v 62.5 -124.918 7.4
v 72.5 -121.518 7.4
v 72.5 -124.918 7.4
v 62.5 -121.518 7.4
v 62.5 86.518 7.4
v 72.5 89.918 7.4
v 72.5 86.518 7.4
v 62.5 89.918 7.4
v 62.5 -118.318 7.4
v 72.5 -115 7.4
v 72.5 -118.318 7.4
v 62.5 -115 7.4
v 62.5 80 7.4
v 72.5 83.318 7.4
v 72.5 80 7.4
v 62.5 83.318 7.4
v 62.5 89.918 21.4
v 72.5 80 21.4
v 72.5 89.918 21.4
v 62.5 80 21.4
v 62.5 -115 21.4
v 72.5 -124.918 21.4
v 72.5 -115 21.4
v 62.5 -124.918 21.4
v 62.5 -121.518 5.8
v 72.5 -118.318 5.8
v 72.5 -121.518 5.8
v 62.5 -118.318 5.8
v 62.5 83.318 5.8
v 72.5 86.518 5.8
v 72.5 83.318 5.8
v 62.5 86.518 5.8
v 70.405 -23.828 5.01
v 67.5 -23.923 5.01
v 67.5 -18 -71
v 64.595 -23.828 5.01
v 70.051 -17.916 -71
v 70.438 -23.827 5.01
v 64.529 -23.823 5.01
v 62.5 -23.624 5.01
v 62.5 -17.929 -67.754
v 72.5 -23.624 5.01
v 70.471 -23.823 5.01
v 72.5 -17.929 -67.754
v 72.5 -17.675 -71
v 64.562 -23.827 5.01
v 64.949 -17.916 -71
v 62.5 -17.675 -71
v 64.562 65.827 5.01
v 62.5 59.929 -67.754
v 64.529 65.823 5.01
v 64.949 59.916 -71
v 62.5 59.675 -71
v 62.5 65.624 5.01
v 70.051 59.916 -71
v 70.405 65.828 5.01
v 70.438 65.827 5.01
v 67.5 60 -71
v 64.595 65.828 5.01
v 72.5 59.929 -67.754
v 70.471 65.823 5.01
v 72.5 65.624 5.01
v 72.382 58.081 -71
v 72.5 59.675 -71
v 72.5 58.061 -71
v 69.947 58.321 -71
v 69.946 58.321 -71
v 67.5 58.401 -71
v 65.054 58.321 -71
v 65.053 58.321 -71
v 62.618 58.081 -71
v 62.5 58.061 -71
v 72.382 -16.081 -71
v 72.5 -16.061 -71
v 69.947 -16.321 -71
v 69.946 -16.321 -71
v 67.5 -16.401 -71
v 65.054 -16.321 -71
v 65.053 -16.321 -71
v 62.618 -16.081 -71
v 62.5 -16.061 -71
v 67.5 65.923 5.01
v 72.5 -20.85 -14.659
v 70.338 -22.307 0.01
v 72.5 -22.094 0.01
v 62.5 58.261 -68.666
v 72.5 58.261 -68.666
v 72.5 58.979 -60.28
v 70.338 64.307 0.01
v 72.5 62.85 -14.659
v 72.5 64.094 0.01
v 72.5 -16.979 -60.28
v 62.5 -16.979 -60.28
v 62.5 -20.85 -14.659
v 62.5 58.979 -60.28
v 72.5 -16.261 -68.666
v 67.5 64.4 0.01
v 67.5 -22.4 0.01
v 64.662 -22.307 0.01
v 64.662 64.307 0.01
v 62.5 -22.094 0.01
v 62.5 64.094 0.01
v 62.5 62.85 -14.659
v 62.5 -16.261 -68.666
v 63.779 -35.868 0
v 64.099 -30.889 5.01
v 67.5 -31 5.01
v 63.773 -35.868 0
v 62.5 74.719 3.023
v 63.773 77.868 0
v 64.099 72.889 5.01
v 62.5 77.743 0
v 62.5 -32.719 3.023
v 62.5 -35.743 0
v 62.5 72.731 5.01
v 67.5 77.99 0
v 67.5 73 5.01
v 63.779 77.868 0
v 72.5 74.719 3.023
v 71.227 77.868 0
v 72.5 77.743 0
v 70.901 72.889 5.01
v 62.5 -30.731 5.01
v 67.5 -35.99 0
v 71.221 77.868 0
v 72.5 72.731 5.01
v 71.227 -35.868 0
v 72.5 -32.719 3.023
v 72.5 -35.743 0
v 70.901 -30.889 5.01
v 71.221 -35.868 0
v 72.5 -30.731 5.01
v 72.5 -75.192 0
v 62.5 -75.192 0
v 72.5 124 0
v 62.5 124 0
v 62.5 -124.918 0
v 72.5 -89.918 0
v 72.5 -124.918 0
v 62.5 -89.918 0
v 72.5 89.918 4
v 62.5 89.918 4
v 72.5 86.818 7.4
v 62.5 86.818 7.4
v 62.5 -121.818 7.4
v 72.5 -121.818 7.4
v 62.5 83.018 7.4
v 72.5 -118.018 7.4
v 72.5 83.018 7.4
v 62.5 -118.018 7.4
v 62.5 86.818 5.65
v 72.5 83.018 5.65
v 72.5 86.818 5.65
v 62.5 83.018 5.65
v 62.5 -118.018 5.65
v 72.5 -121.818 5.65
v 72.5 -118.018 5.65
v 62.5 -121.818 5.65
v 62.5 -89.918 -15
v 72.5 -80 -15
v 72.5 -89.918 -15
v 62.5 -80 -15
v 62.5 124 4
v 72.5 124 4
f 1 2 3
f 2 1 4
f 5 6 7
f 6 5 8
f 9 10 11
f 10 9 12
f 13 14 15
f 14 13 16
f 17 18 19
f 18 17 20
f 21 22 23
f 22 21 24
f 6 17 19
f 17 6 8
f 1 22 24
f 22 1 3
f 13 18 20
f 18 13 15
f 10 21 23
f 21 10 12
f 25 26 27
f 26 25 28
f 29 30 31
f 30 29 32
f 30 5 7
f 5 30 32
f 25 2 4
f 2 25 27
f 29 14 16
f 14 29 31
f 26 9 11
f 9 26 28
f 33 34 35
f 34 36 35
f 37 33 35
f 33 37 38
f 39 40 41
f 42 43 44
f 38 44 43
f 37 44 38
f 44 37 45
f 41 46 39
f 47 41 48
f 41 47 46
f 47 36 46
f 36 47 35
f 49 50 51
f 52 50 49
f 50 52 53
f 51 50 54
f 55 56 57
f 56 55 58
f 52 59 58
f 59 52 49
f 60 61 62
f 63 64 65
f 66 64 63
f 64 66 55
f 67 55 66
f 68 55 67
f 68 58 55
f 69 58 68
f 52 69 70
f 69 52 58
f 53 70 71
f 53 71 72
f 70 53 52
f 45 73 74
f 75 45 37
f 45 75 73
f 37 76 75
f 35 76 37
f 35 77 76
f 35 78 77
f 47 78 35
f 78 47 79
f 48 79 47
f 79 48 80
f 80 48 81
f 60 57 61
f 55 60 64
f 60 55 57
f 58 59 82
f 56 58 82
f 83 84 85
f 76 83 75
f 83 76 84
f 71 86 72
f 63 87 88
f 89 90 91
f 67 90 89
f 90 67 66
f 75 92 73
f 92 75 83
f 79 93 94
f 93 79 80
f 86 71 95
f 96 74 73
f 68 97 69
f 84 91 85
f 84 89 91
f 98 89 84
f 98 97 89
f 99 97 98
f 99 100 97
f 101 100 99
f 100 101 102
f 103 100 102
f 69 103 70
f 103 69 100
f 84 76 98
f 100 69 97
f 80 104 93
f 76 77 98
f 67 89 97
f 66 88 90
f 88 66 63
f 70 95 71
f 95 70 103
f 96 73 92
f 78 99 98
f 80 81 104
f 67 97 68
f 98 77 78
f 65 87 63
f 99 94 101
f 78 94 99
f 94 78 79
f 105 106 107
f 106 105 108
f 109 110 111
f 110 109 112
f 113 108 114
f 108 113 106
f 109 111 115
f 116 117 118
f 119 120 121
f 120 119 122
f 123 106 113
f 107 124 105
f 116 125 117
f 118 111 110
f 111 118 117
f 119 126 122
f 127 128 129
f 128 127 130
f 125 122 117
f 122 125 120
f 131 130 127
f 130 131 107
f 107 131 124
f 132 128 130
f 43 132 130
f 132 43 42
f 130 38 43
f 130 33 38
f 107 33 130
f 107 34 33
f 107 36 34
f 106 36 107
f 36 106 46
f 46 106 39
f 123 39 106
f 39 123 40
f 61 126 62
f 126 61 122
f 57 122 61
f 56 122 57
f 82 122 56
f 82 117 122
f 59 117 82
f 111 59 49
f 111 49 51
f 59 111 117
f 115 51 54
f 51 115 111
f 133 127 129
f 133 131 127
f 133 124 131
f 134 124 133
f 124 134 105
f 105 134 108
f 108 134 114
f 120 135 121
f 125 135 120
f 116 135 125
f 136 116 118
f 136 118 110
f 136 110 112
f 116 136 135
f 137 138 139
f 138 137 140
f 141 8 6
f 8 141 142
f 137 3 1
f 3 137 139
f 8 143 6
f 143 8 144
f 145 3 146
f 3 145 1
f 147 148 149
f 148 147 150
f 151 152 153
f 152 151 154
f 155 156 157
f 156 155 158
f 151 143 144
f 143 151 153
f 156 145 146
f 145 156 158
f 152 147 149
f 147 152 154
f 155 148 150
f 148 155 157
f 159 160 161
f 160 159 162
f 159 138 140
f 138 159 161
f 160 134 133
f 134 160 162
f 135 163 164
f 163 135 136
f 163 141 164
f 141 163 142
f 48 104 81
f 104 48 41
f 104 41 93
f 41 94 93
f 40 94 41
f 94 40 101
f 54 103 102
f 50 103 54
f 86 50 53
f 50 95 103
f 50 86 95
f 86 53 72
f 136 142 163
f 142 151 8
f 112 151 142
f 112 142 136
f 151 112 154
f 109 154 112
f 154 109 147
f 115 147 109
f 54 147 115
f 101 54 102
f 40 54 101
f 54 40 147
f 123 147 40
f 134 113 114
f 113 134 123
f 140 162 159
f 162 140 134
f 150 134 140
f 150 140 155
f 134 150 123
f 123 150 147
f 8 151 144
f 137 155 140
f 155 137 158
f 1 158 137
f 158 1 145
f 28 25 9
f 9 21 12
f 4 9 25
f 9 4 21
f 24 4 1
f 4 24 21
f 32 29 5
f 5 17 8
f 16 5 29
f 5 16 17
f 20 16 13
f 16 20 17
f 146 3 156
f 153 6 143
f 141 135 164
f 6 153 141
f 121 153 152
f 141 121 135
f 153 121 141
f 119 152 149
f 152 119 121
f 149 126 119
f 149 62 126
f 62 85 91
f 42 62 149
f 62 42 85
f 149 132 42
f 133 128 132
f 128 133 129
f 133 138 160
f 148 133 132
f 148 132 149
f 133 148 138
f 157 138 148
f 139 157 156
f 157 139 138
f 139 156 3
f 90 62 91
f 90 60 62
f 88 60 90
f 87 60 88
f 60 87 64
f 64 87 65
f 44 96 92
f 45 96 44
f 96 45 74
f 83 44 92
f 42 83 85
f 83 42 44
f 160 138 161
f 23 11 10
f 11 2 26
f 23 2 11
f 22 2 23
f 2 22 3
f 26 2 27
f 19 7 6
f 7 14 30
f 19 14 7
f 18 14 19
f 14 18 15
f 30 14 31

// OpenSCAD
// file: ../../lib/project/util.scad
// lib/project/util.scad

module rounded_rect_2d(size = [10, 10], r = 2) {
  x = size[0];
  y = size[1];
  rr = min(r, min(x, y) / 2);

  hull() {
    for (sx = [-1, 1], sy = [-1, 1]) {
      translate([sx * (x / 2 - rr), sy * (y / 2 - rr)])
        circle(r = rr);
    }
  }
}
// file: ../../lib/project/params.scad
// lib/project/params.scad
// Shared project parameters for the final tray and all fit-test models.

debug = false;

// Main tray footprint.
tray_corner_r = 15;

// Top tray shell.
tray_floor_t = 2.4;
tray_wall_h = 14;
top_wall_w = 10;
glue_rabbet_h = 1.6;
glue_rabbet_w = 3.2;
glue_rabbet_side_clearance = 0.3;
glue_rabbet_vertical_clearance = 0.5;

// Underside support lip and rear support section.
support_lip_drop = 15;
support_lip_w = 10;
front_lip_back_extra = 5;
front_lip_bottom_back_extra = 0;
console_clear_w = 320;
side_lip_run = 170;
tray_w = console_clear_w + 2 * support_lip_w;
tray_d = side_lip_run + support_lip_w;
front_extension = 35;
rear_gap_w = 28;
rear_tongue_side_margin = 20;
rear_tongue_w = tray_w - 2 * rear_tongue_side_margin;
rear_tongue_depth = 34;
rear_tongue_t = 4.0;

// Cup holder location and plug geometry.
cup_spacing = 135;
// Confirmed from fit checks: move plugs 39 mm rearward from the prior position.
cup_y_from_front = 111;
plug_top_d = 90;
plug_bottom_d = 78;
plug_h = 71;
plug_shell_t = 1.6;
plug_clearance_z = 0;
cup_rim_w = 7;
cup_rim_h = 5;

// Optional underside splice plate for joining printed tray halves.
splice_plate_enable = true;
splice_plate_w = 120;
splice_plate_d = 18;
splice_plate_t = 2;
splice_plate_corner_r = 3;
splice_plate_y_from_front = 40;
splice_plate_side_clearance = 0.3;
splice_plate_vertical_clearance = 0.5;
rear_splice_plate_enable = true;
rear_splice_plate_y_from_front = 184;

// Fit-test defaults.
test_plug_top_ds = [84, 85, 86];
test_spacing_values = [116, 118, 120];
test_lip_drop_values = [8, 10, 12];
test_rear_tongue_ts = [1.4, 1.8, 2.2];
test_frame_wall_w = 12;
test_front_zone_depth = 100;
test_rear_zone_depth = 56;
test_gap_section_w = 140;
test_coupon_spacing = 18;
test_front_to_back_slice_w = 10;
test_rabbet_corner_section_size = 56;
test_rabbet_coupon_gap = 16;
test_rabbet_body_margin_from_groove = 15;
// main file
use <../../lib/project/console_tray.scad>;
include <../../lib/project/params.scad>;

cup_plug_front_to_back_slice_variant(
  tray_w = tray_w,
  tray_d = tray_d,
  front_extension = front_extension,
  tray_corner_r = tray_corner_r,
  tray_floor_t = tray_floor_t,
  tray_wall_h = tray_wall_h,
  top_wall_w = top_wall_w,
  support_lip_drop = support_lip_drop,
  support_lip_w = support_lip_w,
  front_lip_back_extra = front_lip_back_extra,
  front_lip_bottom_back_extra = front_lip_bottom_back_extra,
  rear_gap_w = rear_gap_w,
  rear_tongue_w = rear_tongue_w,
  rear_tongue_depth = rear_tongue_depth,
  rear_tongue_t = rear_tongue_t,
  cup_spacing = cup_spacing,
  cup_y_from_front = cup_y_from_front,
  plug_top_d = plug_top_d,
  plug_bottom_d = plug_bottom_d,
  plug_h = plug_h,
  plug_shell_t = plug_shell_t,
  cup_rim_w = cup_rim_w,
  cup_rim_h = cup_rim_h,
  slice_w = test_front_to_back_slice_w
);
